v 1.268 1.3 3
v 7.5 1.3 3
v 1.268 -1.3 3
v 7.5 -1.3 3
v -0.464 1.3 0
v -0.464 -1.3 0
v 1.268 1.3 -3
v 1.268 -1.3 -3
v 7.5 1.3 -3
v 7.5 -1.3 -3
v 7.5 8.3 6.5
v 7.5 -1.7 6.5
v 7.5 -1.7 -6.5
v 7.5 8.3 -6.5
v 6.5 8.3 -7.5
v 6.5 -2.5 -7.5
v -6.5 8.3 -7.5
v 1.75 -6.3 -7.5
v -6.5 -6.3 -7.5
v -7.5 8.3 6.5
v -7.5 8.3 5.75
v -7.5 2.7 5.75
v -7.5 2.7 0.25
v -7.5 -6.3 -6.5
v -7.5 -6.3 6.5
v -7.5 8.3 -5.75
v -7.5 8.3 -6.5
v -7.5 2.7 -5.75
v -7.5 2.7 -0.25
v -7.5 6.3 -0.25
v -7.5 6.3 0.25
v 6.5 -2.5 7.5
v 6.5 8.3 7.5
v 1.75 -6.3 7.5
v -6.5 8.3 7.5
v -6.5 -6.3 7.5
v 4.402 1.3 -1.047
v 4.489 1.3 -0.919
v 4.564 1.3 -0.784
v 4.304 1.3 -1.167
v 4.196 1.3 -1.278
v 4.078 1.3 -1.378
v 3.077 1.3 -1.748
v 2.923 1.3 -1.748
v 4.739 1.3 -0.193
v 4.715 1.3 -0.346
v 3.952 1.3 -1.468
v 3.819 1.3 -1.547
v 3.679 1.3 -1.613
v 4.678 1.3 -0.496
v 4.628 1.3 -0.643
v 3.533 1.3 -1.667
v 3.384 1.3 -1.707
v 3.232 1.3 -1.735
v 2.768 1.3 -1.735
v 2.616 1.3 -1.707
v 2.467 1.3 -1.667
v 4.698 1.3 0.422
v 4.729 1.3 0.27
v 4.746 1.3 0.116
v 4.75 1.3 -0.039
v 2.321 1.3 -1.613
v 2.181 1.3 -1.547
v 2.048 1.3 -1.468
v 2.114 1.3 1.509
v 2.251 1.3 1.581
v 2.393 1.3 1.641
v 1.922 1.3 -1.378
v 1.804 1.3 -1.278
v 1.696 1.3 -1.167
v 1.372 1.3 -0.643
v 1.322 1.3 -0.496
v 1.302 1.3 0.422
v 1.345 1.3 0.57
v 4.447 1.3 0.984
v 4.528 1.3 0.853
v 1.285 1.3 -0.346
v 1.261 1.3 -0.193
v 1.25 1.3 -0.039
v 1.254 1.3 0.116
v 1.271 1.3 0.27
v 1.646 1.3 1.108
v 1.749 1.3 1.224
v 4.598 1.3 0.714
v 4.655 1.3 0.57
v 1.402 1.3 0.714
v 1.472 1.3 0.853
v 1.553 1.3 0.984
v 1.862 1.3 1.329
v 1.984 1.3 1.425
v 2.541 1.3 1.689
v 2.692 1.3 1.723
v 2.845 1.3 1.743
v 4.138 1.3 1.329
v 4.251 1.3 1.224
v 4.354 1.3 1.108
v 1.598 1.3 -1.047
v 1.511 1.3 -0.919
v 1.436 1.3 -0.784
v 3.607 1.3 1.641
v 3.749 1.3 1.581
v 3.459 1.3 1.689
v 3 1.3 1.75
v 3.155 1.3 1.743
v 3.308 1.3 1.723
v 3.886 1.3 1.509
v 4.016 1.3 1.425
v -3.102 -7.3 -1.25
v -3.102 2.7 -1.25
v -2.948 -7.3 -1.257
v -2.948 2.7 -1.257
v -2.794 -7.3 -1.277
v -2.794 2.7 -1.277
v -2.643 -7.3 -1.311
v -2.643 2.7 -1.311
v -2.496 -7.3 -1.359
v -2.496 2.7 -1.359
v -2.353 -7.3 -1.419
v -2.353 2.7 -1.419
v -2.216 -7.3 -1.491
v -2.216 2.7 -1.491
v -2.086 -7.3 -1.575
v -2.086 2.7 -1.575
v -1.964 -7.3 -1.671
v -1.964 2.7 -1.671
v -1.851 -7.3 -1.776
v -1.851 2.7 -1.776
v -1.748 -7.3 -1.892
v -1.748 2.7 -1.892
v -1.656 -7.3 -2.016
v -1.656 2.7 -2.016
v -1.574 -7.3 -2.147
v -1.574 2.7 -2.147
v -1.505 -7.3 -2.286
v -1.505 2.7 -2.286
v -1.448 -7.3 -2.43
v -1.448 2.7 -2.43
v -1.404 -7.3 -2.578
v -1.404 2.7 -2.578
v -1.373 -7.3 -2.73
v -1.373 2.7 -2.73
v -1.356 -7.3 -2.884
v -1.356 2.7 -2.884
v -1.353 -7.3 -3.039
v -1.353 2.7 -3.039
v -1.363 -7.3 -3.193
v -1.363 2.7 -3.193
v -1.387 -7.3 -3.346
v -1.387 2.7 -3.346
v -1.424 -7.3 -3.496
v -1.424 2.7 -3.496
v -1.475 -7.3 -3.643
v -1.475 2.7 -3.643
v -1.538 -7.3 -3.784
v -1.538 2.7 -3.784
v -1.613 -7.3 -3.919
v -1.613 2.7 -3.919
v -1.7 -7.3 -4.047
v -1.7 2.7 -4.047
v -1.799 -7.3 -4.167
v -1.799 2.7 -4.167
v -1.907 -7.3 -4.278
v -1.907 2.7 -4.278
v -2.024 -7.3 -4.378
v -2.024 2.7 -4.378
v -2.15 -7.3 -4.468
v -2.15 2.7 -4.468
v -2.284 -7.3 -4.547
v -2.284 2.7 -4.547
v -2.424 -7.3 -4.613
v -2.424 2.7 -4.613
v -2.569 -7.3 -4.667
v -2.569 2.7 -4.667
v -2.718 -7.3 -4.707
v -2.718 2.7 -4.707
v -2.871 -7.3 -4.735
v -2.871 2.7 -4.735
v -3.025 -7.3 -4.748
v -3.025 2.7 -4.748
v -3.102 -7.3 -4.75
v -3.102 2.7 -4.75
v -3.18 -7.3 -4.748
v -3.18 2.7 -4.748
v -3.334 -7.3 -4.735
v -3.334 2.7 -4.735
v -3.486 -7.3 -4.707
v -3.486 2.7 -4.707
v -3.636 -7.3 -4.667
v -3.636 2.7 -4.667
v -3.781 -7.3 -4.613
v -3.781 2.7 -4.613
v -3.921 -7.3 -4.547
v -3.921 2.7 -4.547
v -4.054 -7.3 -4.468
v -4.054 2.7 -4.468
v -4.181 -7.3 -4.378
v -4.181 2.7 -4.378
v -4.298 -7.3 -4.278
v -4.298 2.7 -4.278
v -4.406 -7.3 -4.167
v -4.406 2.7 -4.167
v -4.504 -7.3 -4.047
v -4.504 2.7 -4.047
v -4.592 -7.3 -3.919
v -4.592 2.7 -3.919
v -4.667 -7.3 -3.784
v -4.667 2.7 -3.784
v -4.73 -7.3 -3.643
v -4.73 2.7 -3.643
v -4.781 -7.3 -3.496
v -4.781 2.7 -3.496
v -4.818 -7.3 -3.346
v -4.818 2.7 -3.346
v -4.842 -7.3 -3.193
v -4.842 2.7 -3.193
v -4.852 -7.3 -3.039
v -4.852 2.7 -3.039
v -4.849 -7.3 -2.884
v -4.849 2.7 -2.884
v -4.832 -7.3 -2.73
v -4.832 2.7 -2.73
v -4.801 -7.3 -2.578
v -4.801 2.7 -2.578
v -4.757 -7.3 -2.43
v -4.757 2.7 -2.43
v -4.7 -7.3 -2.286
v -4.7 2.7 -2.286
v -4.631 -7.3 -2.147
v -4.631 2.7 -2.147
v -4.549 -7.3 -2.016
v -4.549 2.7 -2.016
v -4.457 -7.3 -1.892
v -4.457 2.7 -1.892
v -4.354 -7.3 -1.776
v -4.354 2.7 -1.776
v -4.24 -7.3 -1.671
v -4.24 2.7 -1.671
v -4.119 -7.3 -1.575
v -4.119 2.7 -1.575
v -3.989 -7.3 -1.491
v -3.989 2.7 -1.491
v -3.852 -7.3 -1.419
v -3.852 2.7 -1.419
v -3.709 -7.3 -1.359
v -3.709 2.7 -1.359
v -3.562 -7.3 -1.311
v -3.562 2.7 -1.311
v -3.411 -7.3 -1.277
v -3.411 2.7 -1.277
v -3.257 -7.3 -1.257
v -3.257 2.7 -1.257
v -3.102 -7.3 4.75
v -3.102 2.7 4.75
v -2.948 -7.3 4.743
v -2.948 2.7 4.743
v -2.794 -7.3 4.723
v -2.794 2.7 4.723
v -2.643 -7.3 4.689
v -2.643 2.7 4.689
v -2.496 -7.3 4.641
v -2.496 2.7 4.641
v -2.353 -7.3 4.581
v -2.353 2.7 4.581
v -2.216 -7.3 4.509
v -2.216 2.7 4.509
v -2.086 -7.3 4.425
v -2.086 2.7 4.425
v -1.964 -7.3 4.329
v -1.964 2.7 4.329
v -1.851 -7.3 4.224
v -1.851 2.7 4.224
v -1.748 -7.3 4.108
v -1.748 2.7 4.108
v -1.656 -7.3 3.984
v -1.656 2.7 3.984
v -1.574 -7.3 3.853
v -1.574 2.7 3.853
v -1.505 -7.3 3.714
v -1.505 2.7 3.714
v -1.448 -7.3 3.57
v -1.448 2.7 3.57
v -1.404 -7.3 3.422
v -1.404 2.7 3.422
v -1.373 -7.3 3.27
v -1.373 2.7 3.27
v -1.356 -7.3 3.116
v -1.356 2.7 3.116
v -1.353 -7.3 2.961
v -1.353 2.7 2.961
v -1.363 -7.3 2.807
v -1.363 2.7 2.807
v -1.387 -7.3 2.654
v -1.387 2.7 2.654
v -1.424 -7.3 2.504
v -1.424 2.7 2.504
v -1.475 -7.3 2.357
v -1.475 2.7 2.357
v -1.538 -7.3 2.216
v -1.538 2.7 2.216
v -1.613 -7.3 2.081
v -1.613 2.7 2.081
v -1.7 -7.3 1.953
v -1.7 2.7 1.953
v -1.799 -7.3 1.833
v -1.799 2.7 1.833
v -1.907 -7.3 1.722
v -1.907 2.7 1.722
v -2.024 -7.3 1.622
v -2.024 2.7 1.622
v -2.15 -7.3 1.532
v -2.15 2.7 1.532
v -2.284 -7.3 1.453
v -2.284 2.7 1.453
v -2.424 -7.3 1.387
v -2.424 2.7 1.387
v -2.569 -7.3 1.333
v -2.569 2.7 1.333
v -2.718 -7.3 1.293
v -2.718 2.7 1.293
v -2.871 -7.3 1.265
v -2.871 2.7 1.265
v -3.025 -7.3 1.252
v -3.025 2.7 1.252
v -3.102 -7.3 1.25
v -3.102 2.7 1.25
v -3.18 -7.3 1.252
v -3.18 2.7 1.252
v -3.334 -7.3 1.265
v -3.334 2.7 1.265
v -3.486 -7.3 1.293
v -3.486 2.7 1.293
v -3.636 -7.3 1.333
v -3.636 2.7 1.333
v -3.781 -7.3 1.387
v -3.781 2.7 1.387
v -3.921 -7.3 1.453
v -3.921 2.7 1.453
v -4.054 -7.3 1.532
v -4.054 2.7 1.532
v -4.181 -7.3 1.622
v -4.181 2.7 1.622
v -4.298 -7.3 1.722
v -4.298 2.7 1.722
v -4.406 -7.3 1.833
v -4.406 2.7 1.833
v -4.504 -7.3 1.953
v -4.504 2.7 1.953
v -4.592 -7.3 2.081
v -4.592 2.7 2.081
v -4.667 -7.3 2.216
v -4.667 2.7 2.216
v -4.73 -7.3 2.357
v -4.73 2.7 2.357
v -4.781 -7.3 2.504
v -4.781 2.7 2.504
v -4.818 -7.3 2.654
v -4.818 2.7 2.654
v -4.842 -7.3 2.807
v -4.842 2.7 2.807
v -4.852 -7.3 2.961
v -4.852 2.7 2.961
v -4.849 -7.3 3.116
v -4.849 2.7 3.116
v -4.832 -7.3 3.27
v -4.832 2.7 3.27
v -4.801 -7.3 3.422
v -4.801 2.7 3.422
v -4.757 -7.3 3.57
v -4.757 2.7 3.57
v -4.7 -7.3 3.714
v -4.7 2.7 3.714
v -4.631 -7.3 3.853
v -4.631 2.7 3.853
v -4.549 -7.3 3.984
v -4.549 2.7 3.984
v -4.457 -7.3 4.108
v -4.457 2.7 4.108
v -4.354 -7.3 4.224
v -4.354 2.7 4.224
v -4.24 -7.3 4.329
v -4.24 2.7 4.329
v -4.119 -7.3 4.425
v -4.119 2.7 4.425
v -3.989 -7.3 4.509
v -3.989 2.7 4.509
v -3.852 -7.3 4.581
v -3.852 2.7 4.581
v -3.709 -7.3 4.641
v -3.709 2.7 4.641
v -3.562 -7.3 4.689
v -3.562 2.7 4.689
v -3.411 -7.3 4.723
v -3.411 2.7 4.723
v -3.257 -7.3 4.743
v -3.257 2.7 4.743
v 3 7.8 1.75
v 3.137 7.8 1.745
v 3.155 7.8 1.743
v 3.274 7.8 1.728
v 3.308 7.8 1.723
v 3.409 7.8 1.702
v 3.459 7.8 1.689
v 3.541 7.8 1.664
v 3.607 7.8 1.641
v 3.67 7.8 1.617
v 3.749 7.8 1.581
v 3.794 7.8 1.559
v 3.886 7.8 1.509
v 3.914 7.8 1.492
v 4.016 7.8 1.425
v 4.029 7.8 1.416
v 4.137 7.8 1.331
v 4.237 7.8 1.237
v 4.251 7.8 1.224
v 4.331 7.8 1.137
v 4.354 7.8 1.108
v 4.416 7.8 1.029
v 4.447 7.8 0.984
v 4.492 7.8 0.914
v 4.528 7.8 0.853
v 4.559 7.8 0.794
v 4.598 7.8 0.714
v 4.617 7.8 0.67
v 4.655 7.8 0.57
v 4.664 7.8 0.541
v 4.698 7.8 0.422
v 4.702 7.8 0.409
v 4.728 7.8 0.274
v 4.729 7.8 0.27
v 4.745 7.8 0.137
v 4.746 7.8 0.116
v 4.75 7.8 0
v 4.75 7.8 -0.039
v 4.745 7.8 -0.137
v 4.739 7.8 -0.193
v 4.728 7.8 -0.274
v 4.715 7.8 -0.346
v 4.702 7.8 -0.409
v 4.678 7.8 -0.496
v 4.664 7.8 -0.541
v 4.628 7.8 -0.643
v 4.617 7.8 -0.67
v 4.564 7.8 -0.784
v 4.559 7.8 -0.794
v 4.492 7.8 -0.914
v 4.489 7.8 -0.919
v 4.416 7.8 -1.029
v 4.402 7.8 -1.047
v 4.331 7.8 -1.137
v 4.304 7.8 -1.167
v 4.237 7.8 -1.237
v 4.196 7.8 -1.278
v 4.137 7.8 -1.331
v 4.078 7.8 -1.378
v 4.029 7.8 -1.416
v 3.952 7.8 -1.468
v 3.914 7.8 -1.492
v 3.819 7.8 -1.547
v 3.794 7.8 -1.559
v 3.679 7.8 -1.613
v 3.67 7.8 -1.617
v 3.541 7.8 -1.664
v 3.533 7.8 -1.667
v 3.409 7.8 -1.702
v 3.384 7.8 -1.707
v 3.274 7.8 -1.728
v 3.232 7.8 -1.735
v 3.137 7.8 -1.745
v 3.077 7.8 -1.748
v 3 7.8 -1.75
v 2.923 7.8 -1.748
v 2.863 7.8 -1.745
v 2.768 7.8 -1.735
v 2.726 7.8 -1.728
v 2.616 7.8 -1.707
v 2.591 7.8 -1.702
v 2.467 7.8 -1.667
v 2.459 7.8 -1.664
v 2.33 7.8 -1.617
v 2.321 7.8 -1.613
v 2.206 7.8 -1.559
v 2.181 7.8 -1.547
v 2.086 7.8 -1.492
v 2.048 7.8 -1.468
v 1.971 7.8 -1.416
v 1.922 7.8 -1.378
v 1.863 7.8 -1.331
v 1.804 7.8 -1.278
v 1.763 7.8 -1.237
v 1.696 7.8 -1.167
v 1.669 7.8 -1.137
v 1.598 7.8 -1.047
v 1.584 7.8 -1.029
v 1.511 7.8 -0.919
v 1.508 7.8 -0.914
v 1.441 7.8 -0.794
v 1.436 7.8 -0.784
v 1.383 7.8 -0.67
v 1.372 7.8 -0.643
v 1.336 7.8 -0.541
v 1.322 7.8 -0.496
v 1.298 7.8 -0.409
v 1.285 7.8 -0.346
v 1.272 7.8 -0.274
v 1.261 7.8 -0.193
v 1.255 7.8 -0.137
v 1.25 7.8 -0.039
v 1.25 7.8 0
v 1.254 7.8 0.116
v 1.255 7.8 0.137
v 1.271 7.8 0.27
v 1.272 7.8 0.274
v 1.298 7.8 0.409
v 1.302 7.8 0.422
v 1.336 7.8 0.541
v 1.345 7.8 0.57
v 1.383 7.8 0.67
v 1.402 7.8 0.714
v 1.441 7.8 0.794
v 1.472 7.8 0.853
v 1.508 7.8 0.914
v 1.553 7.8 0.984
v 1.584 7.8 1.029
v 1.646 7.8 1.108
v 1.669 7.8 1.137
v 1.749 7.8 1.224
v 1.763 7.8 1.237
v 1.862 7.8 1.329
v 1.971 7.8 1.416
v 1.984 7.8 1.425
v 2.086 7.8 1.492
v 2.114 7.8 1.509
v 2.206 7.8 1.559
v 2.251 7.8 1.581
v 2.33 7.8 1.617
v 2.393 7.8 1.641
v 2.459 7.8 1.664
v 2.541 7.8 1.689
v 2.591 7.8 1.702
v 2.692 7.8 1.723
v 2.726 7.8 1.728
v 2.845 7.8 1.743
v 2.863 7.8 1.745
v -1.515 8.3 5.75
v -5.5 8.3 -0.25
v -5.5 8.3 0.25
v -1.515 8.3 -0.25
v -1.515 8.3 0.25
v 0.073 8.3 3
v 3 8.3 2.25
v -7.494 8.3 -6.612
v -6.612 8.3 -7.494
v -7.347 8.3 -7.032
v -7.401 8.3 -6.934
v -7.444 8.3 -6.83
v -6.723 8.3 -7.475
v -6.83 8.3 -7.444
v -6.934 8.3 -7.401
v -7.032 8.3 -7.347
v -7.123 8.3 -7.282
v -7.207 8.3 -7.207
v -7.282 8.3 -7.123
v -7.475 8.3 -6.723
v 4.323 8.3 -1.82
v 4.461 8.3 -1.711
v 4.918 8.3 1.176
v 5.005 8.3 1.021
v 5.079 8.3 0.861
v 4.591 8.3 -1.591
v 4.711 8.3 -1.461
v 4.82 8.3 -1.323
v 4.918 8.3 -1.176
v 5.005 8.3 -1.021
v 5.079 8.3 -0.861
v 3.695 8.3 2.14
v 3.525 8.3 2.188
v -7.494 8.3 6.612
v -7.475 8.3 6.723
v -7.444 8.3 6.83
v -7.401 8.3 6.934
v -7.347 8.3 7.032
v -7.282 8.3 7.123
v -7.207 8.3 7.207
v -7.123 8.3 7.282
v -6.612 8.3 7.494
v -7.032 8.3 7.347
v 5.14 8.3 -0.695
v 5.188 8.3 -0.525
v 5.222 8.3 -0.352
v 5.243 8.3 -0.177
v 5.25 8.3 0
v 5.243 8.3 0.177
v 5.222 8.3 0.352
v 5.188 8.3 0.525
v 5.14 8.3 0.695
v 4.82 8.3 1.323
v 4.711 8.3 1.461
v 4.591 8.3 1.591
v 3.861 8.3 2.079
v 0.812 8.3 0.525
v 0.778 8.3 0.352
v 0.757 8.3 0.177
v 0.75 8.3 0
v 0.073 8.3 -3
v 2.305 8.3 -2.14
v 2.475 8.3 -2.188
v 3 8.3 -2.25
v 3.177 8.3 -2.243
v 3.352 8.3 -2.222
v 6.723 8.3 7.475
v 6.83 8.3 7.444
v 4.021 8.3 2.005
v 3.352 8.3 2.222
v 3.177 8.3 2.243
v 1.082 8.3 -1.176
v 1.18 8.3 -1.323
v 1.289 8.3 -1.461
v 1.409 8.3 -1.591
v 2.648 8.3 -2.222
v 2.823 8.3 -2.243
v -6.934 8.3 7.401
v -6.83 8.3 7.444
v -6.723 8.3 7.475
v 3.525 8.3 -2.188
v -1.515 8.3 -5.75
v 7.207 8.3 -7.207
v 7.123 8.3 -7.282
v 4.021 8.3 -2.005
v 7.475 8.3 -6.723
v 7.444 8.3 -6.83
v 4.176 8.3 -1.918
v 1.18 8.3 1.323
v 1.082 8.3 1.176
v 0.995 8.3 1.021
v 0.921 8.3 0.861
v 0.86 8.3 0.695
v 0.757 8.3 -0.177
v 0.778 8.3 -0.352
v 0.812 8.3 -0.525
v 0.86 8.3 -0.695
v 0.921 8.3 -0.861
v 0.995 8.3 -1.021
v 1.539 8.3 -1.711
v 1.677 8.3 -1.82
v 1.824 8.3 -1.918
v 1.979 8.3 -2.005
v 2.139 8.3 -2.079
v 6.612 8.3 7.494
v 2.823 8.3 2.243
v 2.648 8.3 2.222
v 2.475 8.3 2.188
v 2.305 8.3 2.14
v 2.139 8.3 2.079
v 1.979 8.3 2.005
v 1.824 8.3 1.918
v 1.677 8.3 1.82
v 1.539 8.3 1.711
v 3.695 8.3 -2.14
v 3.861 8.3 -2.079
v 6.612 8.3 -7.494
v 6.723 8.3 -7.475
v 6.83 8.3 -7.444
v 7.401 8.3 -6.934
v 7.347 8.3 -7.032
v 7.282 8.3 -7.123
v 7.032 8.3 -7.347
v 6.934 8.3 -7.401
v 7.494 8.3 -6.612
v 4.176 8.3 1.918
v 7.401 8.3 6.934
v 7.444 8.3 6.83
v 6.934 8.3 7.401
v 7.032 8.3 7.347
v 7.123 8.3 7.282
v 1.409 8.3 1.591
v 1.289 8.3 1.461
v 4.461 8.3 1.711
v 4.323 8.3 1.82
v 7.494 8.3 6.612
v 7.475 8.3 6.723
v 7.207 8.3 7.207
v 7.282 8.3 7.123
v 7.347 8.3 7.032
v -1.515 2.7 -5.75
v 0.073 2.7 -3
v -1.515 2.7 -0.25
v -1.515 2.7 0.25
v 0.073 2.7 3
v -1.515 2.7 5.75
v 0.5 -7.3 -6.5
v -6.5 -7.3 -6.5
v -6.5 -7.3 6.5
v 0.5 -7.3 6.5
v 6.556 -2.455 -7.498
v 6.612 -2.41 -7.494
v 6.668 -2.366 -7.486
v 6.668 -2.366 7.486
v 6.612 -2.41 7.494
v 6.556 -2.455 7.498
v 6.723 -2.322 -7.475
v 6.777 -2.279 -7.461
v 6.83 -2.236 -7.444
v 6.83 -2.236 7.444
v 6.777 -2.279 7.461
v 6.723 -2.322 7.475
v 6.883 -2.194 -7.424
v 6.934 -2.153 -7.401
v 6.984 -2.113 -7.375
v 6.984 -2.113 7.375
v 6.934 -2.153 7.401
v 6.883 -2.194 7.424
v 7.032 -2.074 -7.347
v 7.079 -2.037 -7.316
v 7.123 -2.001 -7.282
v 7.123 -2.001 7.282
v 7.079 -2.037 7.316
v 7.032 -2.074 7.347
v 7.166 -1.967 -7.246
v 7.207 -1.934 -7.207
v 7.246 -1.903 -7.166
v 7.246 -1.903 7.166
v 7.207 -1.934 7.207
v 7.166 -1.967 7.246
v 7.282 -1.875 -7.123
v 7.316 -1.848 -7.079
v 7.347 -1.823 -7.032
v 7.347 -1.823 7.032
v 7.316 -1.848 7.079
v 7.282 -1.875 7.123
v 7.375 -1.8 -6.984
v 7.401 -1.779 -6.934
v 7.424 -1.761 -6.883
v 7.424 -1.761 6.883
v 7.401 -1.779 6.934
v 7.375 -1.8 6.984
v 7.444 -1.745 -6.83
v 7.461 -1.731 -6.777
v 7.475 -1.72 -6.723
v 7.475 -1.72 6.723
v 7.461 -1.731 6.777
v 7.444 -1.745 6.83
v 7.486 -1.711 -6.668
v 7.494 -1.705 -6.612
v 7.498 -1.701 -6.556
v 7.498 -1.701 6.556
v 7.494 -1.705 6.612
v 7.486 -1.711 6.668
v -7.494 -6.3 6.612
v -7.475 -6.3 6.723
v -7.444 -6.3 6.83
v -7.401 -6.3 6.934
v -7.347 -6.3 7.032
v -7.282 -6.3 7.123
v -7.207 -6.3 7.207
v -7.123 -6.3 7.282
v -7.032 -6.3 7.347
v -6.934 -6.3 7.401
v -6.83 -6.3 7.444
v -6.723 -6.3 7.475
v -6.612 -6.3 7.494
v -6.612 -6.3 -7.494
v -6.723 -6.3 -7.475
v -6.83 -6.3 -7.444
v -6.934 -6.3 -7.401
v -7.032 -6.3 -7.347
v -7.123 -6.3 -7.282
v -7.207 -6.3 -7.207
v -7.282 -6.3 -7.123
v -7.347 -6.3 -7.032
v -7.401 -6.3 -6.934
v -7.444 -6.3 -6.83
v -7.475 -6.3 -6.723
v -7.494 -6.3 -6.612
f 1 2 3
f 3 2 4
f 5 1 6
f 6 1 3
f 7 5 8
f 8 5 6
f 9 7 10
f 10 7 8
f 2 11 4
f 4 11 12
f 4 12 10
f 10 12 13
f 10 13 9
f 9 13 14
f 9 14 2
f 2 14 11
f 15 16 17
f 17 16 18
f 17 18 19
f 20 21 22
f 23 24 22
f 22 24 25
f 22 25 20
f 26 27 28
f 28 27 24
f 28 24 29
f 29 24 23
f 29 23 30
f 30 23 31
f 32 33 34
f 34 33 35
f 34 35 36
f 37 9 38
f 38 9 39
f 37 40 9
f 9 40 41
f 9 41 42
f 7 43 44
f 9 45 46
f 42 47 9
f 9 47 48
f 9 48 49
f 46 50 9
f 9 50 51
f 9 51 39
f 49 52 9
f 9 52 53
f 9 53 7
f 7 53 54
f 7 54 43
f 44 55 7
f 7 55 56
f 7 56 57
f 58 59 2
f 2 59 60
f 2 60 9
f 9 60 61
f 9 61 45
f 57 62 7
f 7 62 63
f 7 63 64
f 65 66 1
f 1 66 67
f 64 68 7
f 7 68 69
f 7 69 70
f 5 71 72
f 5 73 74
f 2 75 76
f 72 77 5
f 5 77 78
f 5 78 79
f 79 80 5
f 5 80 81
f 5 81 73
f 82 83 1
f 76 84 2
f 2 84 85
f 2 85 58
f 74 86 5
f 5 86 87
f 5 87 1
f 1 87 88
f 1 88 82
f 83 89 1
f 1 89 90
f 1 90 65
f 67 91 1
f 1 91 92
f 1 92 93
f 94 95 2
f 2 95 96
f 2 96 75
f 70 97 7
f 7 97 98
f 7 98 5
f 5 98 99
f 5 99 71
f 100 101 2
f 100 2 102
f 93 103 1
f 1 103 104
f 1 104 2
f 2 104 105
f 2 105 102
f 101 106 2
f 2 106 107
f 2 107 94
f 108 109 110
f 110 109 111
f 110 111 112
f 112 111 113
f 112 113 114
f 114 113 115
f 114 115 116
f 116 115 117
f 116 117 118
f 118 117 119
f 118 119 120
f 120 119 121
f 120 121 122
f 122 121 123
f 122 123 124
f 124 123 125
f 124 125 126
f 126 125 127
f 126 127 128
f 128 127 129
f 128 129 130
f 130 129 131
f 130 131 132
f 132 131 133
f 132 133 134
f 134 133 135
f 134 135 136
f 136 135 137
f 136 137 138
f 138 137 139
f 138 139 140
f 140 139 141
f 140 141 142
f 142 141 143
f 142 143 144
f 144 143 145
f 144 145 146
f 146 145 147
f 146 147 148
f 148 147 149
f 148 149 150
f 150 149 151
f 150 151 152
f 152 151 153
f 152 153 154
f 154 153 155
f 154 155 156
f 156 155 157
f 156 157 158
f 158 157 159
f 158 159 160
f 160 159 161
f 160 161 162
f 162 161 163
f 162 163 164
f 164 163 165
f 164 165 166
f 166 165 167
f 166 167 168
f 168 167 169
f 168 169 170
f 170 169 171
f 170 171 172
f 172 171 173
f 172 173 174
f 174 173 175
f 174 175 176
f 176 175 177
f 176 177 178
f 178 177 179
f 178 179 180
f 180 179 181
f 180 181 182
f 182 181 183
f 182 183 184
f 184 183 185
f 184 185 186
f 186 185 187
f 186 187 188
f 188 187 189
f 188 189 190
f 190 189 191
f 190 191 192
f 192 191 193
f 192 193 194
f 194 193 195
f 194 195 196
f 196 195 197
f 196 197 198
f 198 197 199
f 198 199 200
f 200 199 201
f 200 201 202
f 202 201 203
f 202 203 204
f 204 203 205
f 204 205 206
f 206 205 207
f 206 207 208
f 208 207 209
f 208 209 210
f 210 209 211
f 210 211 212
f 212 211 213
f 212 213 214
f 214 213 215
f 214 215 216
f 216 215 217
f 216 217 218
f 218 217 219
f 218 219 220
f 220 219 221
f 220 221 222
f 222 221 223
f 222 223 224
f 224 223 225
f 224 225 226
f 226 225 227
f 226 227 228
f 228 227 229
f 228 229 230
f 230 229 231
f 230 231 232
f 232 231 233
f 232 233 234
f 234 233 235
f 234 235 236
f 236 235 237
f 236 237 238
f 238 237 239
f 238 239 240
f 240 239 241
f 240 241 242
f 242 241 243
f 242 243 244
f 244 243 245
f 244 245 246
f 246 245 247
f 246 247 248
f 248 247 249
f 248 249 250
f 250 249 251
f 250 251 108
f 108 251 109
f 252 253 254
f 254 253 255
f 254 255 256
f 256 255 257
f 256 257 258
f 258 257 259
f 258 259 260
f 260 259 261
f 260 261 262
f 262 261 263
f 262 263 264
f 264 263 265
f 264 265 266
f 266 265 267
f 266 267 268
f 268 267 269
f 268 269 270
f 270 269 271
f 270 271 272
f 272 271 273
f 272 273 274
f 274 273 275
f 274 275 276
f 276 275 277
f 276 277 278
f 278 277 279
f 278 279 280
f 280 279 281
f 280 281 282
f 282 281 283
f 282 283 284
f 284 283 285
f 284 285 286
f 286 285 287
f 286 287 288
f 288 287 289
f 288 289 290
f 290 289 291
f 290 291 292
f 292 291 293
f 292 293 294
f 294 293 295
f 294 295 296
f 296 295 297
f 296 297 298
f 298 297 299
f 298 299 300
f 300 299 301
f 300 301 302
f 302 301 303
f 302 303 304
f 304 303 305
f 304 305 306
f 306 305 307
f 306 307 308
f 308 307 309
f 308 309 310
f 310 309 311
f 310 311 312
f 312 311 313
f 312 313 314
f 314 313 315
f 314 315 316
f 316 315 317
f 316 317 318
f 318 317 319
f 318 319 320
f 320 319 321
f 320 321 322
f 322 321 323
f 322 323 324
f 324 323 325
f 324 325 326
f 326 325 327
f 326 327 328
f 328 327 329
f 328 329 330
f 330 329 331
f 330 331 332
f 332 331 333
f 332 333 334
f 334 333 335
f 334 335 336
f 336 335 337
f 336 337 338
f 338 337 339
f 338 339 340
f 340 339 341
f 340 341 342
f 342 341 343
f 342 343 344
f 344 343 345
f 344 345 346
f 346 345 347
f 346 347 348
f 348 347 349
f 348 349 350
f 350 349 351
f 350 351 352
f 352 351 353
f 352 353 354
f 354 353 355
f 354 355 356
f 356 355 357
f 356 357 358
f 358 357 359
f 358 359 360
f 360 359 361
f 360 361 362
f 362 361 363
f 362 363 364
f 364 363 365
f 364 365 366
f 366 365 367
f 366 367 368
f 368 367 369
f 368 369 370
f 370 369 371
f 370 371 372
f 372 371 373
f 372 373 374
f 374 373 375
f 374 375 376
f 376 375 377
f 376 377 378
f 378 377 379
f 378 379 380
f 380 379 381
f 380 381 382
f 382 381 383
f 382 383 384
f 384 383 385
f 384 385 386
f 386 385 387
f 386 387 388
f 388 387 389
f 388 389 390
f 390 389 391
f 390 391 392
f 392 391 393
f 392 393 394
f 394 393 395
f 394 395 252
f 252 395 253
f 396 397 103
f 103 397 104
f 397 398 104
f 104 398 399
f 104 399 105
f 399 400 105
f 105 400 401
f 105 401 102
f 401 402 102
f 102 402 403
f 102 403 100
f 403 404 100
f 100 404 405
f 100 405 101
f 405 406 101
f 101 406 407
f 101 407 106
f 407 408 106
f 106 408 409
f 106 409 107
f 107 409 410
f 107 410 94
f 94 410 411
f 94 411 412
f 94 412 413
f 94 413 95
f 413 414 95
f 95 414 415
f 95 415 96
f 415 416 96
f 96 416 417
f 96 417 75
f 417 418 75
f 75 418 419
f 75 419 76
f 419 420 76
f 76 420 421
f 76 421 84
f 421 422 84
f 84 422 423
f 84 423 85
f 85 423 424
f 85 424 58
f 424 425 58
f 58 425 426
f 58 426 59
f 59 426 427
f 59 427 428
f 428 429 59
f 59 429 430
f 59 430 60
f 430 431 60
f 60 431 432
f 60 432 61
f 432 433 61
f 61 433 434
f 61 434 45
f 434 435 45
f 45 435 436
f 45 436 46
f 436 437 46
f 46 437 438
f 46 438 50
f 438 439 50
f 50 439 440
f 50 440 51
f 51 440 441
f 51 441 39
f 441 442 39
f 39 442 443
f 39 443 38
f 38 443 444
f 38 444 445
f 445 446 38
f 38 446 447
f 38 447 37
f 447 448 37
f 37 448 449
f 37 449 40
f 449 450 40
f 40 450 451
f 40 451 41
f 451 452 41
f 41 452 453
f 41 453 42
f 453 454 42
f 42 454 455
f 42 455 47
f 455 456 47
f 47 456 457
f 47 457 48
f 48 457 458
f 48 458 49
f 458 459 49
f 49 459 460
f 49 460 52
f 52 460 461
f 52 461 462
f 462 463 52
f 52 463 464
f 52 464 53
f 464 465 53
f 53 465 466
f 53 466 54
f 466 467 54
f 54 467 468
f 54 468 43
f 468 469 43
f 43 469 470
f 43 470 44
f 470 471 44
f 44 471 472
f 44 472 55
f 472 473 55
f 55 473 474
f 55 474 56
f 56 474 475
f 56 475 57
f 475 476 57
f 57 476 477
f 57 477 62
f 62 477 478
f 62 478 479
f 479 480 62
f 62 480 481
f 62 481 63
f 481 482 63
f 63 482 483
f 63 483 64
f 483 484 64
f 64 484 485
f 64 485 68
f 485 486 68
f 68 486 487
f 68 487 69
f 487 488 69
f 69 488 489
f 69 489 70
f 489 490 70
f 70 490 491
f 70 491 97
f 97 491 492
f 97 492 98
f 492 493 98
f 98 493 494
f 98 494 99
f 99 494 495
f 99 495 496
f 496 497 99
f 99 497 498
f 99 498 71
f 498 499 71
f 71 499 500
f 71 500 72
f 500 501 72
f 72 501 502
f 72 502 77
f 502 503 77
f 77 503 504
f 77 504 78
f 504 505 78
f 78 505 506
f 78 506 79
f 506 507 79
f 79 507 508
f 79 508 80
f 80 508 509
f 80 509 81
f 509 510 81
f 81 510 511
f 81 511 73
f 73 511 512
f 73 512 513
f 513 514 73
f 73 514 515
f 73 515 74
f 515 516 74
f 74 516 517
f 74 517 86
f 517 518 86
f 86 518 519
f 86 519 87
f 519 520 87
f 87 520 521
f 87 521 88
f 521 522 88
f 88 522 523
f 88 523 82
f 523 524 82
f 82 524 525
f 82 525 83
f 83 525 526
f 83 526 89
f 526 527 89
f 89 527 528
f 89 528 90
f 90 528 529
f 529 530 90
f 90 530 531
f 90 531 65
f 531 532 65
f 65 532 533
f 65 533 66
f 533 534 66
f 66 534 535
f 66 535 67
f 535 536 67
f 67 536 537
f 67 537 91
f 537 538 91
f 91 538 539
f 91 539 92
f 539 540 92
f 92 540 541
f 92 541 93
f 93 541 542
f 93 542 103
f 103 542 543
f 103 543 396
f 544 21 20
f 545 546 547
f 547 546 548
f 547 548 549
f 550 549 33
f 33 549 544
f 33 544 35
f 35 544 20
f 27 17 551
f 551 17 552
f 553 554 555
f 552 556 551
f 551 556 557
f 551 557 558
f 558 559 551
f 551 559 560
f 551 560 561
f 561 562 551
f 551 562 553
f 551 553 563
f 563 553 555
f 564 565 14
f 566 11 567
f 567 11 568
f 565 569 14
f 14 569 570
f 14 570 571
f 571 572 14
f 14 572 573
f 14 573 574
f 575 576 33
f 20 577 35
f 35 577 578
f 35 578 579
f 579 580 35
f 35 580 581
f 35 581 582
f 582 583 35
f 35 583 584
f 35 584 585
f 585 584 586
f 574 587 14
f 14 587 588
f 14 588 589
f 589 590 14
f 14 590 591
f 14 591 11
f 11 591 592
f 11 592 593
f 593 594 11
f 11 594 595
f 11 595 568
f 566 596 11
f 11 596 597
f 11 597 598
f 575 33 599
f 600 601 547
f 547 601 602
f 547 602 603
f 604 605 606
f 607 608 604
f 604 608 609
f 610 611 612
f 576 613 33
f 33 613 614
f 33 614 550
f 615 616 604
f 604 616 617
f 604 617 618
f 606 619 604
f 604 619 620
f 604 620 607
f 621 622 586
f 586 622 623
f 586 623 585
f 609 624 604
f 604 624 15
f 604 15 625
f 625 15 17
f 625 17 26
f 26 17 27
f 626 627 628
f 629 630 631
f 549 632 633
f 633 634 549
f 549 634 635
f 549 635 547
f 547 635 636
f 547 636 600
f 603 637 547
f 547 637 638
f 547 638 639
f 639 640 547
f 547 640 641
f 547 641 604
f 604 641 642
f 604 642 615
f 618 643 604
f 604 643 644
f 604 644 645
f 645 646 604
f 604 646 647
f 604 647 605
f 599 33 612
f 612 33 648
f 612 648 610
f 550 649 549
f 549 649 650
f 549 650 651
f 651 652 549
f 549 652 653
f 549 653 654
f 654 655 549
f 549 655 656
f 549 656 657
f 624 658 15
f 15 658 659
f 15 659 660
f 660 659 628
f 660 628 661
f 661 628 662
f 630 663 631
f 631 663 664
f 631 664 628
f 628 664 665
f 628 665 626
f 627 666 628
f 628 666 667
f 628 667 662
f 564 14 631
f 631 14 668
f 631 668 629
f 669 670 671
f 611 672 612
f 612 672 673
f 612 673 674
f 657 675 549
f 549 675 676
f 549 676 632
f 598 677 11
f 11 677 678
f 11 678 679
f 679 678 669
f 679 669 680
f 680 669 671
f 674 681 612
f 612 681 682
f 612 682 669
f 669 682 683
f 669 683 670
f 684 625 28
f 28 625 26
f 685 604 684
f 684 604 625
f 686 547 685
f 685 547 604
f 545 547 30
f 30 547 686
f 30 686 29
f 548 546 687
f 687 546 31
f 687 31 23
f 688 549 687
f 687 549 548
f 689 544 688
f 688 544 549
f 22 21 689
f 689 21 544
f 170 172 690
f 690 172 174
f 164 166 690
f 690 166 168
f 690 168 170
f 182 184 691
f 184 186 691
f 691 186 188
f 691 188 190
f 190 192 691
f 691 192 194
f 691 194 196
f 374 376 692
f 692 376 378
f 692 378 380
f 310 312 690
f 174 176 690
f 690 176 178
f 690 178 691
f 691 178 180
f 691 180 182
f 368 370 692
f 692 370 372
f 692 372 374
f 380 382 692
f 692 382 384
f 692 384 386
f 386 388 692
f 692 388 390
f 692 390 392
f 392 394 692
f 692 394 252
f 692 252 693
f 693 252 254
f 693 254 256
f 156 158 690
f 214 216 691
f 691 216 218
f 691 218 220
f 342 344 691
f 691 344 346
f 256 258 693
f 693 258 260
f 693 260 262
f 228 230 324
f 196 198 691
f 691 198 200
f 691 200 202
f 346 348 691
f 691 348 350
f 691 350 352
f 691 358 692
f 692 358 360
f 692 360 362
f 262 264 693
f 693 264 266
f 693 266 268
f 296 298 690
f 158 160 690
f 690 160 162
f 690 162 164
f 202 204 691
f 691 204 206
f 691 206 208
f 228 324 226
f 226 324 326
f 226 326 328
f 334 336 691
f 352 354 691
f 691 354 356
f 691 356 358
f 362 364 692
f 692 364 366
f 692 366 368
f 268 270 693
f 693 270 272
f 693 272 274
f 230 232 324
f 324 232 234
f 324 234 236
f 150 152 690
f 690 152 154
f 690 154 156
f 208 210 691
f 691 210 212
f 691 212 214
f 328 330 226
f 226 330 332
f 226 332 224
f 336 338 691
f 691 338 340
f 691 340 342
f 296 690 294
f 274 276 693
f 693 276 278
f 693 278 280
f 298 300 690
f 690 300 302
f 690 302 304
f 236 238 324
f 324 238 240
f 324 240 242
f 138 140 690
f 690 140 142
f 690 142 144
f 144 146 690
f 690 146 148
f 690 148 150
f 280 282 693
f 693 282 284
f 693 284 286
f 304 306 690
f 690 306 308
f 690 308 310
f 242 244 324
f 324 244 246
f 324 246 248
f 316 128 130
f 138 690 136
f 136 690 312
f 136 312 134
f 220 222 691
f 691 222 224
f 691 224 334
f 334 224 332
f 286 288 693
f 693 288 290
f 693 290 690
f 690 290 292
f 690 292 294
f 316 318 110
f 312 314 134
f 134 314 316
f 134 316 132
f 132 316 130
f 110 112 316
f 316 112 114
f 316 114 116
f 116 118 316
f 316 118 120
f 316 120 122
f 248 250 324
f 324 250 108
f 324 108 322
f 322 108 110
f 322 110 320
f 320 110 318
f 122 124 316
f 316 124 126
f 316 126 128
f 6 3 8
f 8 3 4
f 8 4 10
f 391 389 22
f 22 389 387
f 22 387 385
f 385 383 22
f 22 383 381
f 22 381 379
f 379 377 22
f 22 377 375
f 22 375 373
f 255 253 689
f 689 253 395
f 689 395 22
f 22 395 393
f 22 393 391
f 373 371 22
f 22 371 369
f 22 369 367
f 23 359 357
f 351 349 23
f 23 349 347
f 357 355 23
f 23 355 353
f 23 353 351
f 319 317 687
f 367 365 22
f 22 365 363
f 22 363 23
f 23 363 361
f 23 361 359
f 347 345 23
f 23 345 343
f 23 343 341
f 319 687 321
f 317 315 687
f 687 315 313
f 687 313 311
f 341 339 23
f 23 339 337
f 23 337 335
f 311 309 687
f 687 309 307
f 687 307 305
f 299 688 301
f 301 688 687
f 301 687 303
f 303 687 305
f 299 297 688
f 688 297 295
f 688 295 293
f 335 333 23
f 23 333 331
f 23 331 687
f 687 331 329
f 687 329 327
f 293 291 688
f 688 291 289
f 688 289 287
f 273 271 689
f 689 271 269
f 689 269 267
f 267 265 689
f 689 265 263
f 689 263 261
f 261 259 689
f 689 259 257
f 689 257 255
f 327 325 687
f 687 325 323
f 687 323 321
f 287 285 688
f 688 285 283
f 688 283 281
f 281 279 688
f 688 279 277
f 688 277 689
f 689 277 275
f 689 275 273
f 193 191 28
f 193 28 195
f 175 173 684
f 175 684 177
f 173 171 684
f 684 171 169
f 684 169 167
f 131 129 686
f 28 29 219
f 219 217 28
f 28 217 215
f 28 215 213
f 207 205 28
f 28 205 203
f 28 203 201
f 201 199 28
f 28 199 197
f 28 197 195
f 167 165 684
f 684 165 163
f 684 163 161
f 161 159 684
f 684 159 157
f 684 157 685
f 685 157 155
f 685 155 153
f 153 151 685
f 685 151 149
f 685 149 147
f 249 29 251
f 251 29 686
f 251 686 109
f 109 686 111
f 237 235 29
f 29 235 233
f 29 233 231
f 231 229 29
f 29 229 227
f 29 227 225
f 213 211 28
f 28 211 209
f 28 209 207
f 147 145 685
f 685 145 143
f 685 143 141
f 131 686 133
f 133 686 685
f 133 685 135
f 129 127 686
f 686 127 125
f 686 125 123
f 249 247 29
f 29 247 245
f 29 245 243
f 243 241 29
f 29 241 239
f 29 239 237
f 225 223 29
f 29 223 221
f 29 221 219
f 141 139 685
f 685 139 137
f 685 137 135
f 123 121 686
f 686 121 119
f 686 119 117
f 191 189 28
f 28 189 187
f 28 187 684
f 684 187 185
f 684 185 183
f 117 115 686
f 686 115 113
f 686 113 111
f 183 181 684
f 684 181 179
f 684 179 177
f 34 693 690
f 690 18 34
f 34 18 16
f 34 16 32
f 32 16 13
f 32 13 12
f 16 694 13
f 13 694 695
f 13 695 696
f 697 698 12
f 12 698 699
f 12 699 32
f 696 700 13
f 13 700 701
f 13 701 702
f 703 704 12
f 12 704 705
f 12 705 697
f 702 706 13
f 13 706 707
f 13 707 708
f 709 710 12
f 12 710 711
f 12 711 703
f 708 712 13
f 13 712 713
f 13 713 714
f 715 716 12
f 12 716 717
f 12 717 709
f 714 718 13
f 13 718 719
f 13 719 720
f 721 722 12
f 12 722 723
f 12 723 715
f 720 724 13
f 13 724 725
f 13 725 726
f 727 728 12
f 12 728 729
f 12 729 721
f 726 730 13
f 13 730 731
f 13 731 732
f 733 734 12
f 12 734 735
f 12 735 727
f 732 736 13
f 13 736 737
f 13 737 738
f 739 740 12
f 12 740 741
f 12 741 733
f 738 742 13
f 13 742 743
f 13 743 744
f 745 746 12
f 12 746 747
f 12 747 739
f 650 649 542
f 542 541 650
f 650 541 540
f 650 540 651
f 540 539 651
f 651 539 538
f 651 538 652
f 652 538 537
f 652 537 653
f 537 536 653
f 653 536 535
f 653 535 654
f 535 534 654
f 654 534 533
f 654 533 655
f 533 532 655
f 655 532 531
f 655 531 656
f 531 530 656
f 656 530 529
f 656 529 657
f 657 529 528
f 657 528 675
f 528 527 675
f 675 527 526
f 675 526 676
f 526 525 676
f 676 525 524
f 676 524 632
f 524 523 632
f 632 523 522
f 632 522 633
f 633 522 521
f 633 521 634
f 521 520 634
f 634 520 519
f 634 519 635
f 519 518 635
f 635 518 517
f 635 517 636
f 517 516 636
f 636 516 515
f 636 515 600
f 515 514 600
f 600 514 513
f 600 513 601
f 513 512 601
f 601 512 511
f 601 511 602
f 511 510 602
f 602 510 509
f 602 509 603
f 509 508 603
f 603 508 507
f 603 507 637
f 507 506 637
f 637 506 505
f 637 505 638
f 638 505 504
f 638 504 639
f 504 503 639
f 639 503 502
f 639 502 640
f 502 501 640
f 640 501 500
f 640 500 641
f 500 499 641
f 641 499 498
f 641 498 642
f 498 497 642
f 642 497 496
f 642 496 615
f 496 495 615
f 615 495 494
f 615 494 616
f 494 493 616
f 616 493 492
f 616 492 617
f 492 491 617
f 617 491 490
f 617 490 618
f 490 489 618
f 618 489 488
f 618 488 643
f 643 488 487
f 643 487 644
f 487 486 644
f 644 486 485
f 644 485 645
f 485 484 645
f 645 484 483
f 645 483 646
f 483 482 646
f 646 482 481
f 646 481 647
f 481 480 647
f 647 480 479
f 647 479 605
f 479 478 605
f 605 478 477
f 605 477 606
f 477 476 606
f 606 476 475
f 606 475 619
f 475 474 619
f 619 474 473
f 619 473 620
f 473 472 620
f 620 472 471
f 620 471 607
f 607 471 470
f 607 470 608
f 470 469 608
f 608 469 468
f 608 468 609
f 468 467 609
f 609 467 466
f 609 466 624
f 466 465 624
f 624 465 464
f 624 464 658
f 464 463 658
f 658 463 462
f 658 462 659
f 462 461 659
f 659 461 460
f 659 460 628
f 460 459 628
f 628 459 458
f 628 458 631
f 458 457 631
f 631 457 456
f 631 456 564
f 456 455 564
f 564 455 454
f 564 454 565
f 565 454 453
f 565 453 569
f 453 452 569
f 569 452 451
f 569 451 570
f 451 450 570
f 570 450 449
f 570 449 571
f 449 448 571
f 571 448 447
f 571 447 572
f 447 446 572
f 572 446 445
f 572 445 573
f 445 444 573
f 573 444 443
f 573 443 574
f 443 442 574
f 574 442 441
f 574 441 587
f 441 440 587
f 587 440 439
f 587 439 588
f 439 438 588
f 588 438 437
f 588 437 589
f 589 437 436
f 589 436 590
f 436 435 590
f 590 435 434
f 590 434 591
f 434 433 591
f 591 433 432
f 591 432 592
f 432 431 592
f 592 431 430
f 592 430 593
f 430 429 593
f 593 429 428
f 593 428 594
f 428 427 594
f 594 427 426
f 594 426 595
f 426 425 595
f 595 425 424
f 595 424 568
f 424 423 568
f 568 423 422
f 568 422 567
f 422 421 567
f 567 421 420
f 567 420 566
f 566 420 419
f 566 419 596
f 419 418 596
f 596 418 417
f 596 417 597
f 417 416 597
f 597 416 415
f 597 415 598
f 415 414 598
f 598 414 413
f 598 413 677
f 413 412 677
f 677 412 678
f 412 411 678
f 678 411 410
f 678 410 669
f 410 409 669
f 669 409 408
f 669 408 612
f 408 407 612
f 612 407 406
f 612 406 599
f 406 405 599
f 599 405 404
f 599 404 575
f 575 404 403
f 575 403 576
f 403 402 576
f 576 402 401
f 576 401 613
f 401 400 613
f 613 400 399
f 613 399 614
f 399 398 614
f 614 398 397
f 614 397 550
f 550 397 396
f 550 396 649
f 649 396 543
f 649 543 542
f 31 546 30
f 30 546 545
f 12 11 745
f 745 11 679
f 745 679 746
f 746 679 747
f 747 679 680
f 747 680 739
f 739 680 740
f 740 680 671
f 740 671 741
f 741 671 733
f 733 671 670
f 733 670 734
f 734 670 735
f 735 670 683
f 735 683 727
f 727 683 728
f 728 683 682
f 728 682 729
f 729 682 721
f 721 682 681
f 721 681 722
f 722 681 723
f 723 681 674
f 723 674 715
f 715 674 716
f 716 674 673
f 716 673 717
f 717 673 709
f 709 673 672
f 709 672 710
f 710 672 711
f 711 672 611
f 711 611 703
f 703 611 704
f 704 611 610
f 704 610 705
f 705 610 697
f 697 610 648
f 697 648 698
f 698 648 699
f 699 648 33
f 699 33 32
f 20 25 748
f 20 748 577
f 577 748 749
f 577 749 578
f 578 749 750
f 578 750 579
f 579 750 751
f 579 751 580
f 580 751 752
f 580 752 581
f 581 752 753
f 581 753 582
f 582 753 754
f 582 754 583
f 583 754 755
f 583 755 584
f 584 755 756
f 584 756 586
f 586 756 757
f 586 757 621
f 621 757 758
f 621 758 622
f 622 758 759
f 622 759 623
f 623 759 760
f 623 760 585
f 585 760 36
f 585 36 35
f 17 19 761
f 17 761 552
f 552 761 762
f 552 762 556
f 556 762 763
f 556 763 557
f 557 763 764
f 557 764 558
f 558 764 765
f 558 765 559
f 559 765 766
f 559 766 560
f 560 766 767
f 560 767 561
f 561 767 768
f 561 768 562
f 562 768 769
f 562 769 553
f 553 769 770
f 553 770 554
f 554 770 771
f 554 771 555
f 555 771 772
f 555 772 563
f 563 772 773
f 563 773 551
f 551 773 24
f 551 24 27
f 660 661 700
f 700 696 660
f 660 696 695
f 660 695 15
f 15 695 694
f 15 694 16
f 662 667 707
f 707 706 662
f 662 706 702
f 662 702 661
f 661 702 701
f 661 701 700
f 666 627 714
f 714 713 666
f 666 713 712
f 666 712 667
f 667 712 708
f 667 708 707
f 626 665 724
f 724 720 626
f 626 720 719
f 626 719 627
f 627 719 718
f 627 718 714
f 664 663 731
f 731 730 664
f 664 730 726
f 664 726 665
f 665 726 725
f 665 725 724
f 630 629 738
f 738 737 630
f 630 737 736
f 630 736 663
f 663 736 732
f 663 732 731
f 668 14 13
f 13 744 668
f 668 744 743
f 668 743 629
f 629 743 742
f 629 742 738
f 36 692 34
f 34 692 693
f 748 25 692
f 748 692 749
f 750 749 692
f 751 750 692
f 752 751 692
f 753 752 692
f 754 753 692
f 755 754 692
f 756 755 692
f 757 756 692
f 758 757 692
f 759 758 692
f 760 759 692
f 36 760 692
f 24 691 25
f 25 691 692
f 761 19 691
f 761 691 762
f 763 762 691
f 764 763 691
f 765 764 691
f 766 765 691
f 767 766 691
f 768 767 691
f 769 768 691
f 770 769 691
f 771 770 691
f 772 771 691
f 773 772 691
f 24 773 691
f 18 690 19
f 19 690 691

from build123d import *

# Parameters (mm, degrees)
BOSS_EXTRUDE1_DEPTH     = 1.3
SKETCH3_W               = 15
SKETCH3_H               = 15
BOSS_EXTRUDE2_DEPTH     = 5.5
SKETCH5_R               = 1.75
CUT_EXTRUDE1_DEPTH      = 14.345785852
BOSS_EXTRUDE3_START     = 1.5
SKETCH8_R               = 1.75
BOSS_EXTRUDE3_DEPTH     = 1.5
SKETCH9_R               = 1.75
BOSS_EXTRUDE4_DEPTH     = 6
CUT_EXTRUDE3_DEPTH      = 4.1
CUT_EXTRUDE4_DEPTH      = 19.712028217
CUT_EXTRUDE4_DEPTH_BACK = 19.712028217
CHAMFER1_SIZE           = 0.5
CHAMFER2_SIZE           = 2
FILLET1_R               = 1
CHAMFER3_SIZE           = 1


with BuildPart() as part:
    # Sketch2 → Boss-Extrude1 (new, symmetric)
    with BuildSketch(Plane(origin=(0, 0, 0), x_dir=(1, 0, 0), z_dir=(0, 1, 0))):
        Polygon((-7.5, 7.5), (7.5, 7.5), (7.5, 3), (4.732050808, 3), (1.267949192, 3), (-0.464101615, 0), (1.267949192, -3), (4.732050808, -3), (7.5, -3), (7.5, -7.5), (-7.5, -7.5), (-7.5, -5.75), (-7.5, 5.75), align=None)
    extrude(amount=BOSS_EXTRUDE1_DEPTH, both=True)

    # Sketch3 → Boss-Extrude2 (add)
    with BuildSketch(Plane(origin=(0, 1.3, 0), x_dir=(1, 0, 0), z_dir=(0, 1, 0))):
        Rectangle(SKETCH3_W, SKETCH3_H)
    extrude(amount=BOSS_EXTRUDE2_DEPTH)

    # Sketch5 → Cut-Extrude1 (cut, through all)
    with BuildSketch(Plane(origin=(0, 6.8, 0), x_dir=(1, 0, 0), z_dir=(0, 1, 0))):
        with Locations(Location((-3.102458521, 3, 0), (0, 0, 270))):
            Circle(SKETCH5_R)
        with Locations(Location((-3.102458521, -3, 0), (0, 0, 270))):
            Circle(SKETCH5_R)
        with Locations(Location((3, 0, 0), (0, 0, 270))):
            Circle(SKETCH5_R)
    extrude(amount=-CUT_EXTRUDE1_DEPTH, mode=Mode.SUBTRACT)

    # Sketch8 → Boss-Extrude3 (add)
    with BuildSketch(Plane(origin=(0, 6.8, 0), x_dir=(1, 0, 0), z_dir=(0, 1, 0)).offset(BOSS_EXTRUDE3_START)):
        Polygon((-7.5, 7.5), (7.5, 7.5), (7.5, 2.75), (7.5, -2.75), (7.5, -7.5), (-7.5, -7.5), (-7.5, -5.75), (-4.690171761, -5.75), (-1.514745281, -5.75), (0.07296796, -3), (-1.514745281, -0.25), (-4.690171761, -0.25), (-7.5, -0.25), (-7.5, 0.25), (-4.690171761, 0.25), (-1.514745281, 0.25), (0.07296796, 3), (-1.514745281, 5.75), (-4.690171761, 5.75), (-7.5, 5.75), align=None)
        with Locations(Location((3, 0, 0), (0, 0, 270))):
            Circle(SKETCH8_R, mode=Mode.SUBTRACT)
    extrude(amount=-BOSS_EXTRUDE3_DEPTH)

    # Sketch9 → Boss-Extrude4 (add)
    with BuildSketch(Plane.XZ.offset(1.3)):
        Polygon((7.5, 3), (7.5, -3), (7.5, -7.5), (-7.5, -7.5), (-7.5, 7.5), (7.5, 7.5), align=None)
        with Locations(Location((-3.102458521, 3, 0), (0, 0, 90))):
            Circle(SKETCH9_R, mode=Mode.SUBTRACT)
        with Locations(Location((-3.102458521, -3, 0), (0, 0, 90))):
            Circle(SKETCH9_R, mode=Mode.SUBTRACT)
    extrude(amount=BOSS_EXTRUDE4_DEPTH)

    # Sketch11 → Cut-Extrude3 (cut)
    with BuildSketch(Plane(origin=(0, 6.8, 0), x_dir=(1, 0, 0), z_dir=(0, 1, 0))):
        Polygon((-7.5, 0.25), (-1.514745281, 0.25), (0.07296796, 3), (-1.514745281, 5.75), (-7.5, 5.75), align=None)
        Polygon((-7.5, -5.75), (-1.514745281, -5.75), (0.07296796, -3), (-1.514745281, -0.25), (-7.5, -0.25), align=None)
    extrude(amount=-CUT_EXTRUDE3_DEPTH, mode=Mode.SUBTRACT)

    # Sketch10 → Cut-Extrude4 (cut, two sides: drawn at the far end of the back side and taken through both)
    with BuildSketch(Plane.XY.offset(7.5).offset(-CUT_EXTRUDE4_DEPTH_BACK)):
        Polygon((0.5, -7.3), (7.5, -1.7), (7.5, -7.3), align=None)
    extrude(amount=CUT_EXTRUDE4_DEPTH + CUT_EXTRUDE4_DEPTH_BACK, mode=Mode.SUBTRACT)

    # Chamfer1
    chamfer1_edges = [part.edges().sort_by_distance(p)[0] for p in [
        (3, 8.3, -1.75),
    ]]
    chamfer(chamfer1_edges, length=CHAMFER1_SIZE)

    # Chamfer2
    chamfer2_edges = [part.edges().sort_by_distance(p)[0] for p in [
        (-7.5, 8.3, 0),
    ]]
    chamfer(chamfer2_edges, length=CHAMFER2_SIZE)

    # Fillet1
    fillet1_edges = [part.edges().sort_by_distance(p)[0] for p in [
        (7.5, 3.3, 7.5),
        (-7.5, 0.5, 7.5),
        (-7.5, 0.5, -7.5),
        (7.5, 3.3, -7.5),
    ]]
    fillet(fillet1_edges, radius=FILLET1_R)

    # Chamfer3
    chamfer3_edges = [part.edges().sort_by_distance(p)[0] for p in [
        (-3, -7.3, 7.5),
        (-7.5, -7.3, 0),
        (-3, -7.3, -7.5),
        (-7.207106781, -7.3, -7.207106781),
        (-7.207106781, -7.3, 7.207106781),
    ]]
    chamfer(chamfer3_edges, length=CHAMFER3_SIZE)


solid = part.part
